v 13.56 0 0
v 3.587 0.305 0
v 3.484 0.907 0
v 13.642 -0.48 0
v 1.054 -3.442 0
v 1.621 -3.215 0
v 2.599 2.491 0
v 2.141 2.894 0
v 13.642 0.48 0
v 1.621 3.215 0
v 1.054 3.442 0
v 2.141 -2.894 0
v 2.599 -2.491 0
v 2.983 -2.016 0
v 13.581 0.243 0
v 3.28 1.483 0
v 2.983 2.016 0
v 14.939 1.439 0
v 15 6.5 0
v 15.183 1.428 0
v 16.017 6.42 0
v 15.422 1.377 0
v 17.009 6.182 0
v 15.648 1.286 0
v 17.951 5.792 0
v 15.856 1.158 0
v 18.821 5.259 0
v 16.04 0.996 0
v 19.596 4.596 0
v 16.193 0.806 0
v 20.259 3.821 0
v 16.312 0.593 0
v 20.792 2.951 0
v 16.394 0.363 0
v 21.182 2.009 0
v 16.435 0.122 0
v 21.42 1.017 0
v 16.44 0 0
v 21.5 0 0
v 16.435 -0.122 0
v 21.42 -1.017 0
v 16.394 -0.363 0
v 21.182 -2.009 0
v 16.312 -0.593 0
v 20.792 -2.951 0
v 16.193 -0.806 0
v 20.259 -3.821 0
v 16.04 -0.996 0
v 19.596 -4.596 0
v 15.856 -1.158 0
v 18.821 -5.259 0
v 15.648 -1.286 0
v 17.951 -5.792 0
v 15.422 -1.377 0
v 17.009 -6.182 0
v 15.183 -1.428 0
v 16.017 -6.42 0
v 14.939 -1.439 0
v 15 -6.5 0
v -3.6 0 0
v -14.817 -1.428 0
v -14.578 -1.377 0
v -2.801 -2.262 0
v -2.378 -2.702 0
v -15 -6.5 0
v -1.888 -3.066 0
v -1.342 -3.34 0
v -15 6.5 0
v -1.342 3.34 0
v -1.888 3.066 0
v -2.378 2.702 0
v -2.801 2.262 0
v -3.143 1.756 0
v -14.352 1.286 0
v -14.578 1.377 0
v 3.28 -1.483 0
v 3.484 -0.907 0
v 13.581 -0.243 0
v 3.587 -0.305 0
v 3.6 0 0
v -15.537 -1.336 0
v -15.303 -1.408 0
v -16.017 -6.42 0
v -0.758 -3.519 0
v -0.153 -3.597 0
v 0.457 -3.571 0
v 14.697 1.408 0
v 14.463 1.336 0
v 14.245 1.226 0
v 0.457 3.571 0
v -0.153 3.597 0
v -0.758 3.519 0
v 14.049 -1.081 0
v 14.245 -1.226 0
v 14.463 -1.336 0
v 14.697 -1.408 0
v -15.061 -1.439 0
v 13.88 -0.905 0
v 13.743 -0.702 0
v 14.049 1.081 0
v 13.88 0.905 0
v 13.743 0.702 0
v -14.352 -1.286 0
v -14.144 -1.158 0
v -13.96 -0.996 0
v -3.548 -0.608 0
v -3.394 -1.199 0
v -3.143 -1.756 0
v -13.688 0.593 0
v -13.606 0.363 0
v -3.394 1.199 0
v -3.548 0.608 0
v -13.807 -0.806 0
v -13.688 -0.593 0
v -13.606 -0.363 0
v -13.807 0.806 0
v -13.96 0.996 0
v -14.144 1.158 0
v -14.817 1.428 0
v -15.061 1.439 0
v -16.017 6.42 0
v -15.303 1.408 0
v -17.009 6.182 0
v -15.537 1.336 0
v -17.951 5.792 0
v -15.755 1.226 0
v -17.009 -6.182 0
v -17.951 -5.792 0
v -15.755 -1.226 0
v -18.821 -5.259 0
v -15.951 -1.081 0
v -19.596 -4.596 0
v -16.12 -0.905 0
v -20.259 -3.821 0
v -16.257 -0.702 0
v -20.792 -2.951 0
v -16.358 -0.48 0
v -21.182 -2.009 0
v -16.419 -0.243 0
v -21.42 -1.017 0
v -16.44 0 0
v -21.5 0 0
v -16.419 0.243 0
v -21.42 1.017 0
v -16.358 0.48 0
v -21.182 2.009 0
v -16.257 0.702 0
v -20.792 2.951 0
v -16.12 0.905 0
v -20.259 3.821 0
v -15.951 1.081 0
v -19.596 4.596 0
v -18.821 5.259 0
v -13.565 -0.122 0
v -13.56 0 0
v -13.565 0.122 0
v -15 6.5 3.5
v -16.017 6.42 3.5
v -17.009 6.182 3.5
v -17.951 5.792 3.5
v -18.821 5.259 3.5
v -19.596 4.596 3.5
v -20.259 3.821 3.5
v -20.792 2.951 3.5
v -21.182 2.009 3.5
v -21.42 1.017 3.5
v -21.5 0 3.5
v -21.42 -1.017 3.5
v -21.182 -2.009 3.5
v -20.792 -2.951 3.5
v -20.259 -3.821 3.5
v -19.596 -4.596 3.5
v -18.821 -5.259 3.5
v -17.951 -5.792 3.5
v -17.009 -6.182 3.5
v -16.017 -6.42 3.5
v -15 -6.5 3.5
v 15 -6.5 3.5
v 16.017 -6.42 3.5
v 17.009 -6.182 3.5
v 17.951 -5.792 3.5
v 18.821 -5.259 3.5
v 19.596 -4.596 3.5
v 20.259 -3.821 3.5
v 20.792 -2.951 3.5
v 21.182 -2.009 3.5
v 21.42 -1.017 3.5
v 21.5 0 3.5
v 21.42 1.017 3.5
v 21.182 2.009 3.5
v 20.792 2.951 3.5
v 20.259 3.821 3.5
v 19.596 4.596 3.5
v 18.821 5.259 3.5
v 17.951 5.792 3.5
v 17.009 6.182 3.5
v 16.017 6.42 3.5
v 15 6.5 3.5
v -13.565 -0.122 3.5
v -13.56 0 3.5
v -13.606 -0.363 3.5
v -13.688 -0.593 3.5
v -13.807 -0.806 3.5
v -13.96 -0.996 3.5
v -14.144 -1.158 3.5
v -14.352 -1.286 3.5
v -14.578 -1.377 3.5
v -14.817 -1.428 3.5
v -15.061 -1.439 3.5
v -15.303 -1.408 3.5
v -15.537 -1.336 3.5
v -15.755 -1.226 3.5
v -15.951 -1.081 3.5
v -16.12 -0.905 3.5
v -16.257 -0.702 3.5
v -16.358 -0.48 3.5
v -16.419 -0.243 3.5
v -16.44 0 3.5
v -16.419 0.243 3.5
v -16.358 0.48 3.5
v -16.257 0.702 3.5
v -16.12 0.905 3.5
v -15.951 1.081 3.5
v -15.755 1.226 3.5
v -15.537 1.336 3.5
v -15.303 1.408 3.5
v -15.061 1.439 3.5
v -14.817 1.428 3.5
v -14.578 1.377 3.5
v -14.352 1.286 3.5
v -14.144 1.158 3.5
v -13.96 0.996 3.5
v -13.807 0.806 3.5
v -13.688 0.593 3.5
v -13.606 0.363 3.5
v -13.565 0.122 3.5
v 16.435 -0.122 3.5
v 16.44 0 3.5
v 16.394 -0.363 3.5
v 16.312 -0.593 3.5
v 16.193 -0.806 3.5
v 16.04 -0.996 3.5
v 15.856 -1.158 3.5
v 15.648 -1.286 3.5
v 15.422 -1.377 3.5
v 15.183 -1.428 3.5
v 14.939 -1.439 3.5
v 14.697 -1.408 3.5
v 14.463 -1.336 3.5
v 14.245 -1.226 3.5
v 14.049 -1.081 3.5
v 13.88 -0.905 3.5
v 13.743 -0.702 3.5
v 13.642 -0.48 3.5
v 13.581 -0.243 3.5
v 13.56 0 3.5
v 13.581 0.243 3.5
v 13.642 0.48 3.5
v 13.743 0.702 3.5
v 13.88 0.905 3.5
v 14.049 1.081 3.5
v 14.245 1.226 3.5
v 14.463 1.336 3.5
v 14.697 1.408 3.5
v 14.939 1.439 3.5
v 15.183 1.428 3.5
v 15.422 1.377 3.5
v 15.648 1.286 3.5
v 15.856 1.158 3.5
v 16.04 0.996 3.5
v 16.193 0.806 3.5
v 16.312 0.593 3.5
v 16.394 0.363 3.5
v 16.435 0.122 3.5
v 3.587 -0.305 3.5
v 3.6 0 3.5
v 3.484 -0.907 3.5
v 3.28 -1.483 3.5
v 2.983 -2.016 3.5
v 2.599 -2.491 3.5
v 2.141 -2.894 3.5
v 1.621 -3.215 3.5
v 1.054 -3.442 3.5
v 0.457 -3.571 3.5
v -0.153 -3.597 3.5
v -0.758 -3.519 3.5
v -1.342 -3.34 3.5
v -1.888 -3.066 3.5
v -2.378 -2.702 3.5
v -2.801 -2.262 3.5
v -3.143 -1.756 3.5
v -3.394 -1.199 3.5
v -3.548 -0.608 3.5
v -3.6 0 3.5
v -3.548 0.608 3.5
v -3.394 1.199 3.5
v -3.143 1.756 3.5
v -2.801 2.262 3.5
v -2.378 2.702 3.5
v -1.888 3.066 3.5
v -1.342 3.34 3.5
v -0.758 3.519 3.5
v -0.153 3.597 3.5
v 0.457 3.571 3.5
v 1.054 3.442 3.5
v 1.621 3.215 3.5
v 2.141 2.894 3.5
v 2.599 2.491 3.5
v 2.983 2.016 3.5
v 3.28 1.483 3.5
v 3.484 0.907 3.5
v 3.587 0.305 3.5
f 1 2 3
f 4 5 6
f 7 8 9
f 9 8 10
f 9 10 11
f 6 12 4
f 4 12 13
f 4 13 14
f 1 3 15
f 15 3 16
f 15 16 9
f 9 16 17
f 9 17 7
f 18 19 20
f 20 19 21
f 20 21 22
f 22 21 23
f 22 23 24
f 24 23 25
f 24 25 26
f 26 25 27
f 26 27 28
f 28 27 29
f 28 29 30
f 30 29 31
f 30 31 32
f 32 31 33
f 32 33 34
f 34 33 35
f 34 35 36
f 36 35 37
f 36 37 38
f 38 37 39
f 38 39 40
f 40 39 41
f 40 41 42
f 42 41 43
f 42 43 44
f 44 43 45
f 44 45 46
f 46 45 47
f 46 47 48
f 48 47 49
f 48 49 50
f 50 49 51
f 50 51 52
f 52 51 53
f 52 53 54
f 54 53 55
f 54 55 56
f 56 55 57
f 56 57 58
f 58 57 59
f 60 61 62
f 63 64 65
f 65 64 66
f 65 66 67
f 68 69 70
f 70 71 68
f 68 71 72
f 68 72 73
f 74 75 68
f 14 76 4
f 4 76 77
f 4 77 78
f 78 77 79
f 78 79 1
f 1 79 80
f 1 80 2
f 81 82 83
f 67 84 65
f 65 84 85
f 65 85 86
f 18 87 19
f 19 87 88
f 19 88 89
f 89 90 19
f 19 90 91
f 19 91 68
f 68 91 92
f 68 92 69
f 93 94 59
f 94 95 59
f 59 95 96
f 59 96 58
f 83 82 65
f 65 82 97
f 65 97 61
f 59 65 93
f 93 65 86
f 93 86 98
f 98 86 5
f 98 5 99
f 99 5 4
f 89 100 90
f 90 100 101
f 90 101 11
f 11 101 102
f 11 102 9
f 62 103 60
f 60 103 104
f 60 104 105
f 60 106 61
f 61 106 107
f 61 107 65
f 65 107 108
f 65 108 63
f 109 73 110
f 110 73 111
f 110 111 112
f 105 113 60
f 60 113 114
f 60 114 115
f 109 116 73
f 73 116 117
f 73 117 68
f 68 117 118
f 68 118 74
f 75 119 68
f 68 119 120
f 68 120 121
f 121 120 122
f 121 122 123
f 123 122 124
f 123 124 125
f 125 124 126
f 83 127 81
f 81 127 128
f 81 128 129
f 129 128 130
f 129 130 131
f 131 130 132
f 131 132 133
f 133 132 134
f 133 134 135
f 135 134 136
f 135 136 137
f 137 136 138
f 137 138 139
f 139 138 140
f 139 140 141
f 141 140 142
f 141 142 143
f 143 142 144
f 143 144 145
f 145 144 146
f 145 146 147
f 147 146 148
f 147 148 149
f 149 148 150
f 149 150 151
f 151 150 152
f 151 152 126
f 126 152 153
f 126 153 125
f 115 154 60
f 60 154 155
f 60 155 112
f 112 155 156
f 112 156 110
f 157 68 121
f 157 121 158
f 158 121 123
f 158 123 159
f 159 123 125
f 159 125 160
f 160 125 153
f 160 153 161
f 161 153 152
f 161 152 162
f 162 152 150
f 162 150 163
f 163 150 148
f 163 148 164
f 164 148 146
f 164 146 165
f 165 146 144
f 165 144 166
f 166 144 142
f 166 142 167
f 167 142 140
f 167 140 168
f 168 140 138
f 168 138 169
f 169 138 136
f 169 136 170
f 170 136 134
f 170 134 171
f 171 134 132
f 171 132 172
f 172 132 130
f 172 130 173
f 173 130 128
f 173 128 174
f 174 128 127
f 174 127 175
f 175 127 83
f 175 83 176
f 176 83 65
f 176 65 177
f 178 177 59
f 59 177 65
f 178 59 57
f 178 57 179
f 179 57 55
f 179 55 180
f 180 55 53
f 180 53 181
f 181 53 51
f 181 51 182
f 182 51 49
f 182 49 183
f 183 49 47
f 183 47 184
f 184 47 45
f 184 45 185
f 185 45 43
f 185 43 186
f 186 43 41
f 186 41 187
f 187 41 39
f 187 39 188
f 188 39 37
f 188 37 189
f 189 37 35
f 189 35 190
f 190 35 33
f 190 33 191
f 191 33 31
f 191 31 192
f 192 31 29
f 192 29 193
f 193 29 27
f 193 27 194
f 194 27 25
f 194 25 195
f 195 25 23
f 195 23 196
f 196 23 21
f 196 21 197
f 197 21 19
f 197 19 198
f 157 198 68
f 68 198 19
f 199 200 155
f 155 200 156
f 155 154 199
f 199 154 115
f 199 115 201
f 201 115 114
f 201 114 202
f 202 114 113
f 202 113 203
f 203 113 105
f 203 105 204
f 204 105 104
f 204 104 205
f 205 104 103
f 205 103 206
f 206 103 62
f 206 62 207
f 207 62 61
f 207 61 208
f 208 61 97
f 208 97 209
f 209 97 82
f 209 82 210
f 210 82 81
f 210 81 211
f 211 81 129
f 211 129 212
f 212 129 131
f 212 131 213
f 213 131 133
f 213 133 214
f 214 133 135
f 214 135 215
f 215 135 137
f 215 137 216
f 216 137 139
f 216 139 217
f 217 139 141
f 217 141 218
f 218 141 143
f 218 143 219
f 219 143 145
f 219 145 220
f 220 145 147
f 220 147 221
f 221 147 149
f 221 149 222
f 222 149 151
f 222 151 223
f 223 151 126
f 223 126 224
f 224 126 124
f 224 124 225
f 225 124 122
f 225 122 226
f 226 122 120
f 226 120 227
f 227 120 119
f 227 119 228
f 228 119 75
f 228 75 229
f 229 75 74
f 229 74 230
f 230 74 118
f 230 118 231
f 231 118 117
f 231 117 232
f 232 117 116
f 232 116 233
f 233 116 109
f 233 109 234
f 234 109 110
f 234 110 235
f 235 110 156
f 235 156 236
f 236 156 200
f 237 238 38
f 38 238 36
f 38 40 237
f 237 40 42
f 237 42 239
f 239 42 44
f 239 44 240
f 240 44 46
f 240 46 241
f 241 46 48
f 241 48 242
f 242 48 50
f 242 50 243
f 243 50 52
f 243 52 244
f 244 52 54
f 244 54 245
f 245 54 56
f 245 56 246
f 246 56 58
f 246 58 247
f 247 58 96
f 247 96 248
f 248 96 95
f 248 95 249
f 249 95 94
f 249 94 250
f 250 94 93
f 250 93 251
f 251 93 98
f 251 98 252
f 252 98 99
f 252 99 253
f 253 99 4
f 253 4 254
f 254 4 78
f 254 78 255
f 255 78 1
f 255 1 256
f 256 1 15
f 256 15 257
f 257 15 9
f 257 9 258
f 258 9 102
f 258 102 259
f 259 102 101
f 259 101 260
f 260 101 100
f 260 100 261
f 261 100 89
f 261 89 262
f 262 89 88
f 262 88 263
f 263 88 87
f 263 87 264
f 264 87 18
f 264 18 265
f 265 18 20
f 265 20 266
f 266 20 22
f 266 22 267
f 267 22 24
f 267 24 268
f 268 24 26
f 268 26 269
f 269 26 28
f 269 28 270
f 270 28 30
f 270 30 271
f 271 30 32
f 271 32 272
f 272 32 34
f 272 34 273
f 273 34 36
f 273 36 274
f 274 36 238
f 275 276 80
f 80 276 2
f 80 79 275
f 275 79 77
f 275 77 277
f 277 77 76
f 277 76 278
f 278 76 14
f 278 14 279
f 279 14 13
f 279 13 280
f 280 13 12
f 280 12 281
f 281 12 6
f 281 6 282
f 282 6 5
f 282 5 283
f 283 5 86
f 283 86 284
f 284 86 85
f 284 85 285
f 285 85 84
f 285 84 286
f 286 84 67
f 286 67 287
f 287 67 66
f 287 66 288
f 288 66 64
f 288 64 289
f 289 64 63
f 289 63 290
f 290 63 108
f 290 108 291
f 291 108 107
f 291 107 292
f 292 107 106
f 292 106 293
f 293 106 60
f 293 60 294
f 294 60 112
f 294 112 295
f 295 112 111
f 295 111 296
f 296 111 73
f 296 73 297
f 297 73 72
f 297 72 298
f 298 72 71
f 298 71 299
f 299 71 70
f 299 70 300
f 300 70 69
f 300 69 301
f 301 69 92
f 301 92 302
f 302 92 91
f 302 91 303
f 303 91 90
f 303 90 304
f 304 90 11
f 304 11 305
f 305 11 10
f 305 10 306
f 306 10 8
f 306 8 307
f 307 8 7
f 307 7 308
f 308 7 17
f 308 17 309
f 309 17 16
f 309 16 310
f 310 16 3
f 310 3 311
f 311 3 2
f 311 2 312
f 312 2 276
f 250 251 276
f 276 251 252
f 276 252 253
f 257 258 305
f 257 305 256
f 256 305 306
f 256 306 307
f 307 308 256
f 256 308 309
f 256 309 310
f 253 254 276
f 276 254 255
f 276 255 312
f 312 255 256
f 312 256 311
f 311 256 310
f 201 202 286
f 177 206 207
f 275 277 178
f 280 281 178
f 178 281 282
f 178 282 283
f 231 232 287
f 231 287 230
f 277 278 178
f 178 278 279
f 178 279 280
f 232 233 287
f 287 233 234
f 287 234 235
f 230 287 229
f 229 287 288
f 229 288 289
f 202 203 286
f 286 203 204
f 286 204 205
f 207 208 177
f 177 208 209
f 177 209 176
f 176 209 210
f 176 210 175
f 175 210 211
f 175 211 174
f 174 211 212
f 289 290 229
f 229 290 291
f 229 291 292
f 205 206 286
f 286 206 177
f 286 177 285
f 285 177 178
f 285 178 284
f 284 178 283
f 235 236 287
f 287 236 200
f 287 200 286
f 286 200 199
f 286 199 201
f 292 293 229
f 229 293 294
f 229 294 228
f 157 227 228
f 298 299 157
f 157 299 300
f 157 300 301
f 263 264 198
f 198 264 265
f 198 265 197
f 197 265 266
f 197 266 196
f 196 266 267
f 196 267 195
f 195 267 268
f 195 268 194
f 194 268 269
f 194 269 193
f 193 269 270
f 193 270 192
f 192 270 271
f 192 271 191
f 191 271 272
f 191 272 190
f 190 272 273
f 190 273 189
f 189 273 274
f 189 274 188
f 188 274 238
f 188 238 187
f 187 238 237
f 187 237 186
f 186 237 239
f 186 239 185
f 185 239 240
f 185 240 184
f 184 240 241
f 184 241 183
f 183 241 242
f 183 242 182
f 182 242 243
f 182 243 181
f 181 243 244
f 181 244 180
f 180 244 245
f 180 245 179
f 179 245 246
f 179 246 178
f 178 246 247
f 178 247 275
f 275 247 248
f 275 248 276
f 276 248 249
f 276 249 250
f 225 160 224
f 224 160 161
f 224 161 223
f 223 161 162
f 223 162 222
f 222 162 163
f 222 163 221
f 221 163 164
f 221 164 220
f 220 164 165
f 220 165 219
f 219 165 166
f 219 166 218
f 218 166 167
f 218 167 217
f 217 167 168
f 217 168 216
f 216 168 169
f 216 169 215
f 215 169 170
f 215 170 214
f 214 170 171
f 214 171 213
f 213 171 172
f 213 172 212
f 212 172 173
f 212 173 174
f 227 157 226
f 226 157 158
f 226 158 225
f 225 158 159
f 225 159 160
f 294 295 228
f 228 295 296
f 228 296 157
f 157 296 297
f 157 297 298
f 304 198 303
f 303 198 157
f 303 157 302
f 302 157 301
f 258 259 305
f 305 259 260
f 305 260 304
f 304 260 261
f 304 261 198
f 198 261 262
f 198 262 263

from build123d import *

# Parameters (mm, degrees)
SKETCH_1_R      = 1.44
SKETCH_1_R_2    = 3.6
EXTRUDE_2_DEPTH = 2
SKETCH_1_2_R    = 1.44
SKETCH_1_2_R_2  = 3.6
EXTRUDE_3_DEPTH = 3.5


with BuildPart() as part:
    # 草图1 → 凸台-拉伸2 (new body)
    with BuildSketch(Plane.XY):
        with BuildLine():
            Line((-15, 6.5), (15, 6.5))
            ThreePointArc((15, 6.5), (21.5, 0), (15, -6.5))
            Line((15, -6.5), (-15, -6.5))
            ThreePointArc((-15, -6.5), (-21.5, 0), (-15, 6.5))
        make_face()
        with Locations((-15, 0)):
            Circle(SKETCH_1_R, mode=Mode.SUBTRACT)
        with Locations((15, 0)):
            Circle(SKETCH_1_R, mode=Mode.SUBTRACT)
        Circle(SKETCH_1_R_2, mode=Mode.SUBTRACT)
    extrude(amount=EXTRUDE_2_DEPTH)

    # 草图1<2> → 凸台-拉伸3 (add)
    with BuildSketch(Plane.XY):
        with BuildLine():
            Line((-15, 6.5), (15, 6.5))
            ThreePointArc((15, 6.5), (21.5, 0), (15, -6.5))
            Line((15, -6.5), (-15, -6.5))
            ThreePointArc((-15, -6.5), (-21.5, 0), (-15, 6.5))
        make_face()
        with Locations((-15, 0)):
            Circle(SKETCH_1_2_R, mode=Mode.SUBTRACT)
        with Locations((15, 0)):
            Circle(SKETCH_1_2_R, mode=Mode.SUBTRACT)
        Circle(SKETCH_1_2_R_2, mode=Mode.SUBTRACT)
    extrude(amount=EXTRUDE_3_DEPTH)


solid = part.part
